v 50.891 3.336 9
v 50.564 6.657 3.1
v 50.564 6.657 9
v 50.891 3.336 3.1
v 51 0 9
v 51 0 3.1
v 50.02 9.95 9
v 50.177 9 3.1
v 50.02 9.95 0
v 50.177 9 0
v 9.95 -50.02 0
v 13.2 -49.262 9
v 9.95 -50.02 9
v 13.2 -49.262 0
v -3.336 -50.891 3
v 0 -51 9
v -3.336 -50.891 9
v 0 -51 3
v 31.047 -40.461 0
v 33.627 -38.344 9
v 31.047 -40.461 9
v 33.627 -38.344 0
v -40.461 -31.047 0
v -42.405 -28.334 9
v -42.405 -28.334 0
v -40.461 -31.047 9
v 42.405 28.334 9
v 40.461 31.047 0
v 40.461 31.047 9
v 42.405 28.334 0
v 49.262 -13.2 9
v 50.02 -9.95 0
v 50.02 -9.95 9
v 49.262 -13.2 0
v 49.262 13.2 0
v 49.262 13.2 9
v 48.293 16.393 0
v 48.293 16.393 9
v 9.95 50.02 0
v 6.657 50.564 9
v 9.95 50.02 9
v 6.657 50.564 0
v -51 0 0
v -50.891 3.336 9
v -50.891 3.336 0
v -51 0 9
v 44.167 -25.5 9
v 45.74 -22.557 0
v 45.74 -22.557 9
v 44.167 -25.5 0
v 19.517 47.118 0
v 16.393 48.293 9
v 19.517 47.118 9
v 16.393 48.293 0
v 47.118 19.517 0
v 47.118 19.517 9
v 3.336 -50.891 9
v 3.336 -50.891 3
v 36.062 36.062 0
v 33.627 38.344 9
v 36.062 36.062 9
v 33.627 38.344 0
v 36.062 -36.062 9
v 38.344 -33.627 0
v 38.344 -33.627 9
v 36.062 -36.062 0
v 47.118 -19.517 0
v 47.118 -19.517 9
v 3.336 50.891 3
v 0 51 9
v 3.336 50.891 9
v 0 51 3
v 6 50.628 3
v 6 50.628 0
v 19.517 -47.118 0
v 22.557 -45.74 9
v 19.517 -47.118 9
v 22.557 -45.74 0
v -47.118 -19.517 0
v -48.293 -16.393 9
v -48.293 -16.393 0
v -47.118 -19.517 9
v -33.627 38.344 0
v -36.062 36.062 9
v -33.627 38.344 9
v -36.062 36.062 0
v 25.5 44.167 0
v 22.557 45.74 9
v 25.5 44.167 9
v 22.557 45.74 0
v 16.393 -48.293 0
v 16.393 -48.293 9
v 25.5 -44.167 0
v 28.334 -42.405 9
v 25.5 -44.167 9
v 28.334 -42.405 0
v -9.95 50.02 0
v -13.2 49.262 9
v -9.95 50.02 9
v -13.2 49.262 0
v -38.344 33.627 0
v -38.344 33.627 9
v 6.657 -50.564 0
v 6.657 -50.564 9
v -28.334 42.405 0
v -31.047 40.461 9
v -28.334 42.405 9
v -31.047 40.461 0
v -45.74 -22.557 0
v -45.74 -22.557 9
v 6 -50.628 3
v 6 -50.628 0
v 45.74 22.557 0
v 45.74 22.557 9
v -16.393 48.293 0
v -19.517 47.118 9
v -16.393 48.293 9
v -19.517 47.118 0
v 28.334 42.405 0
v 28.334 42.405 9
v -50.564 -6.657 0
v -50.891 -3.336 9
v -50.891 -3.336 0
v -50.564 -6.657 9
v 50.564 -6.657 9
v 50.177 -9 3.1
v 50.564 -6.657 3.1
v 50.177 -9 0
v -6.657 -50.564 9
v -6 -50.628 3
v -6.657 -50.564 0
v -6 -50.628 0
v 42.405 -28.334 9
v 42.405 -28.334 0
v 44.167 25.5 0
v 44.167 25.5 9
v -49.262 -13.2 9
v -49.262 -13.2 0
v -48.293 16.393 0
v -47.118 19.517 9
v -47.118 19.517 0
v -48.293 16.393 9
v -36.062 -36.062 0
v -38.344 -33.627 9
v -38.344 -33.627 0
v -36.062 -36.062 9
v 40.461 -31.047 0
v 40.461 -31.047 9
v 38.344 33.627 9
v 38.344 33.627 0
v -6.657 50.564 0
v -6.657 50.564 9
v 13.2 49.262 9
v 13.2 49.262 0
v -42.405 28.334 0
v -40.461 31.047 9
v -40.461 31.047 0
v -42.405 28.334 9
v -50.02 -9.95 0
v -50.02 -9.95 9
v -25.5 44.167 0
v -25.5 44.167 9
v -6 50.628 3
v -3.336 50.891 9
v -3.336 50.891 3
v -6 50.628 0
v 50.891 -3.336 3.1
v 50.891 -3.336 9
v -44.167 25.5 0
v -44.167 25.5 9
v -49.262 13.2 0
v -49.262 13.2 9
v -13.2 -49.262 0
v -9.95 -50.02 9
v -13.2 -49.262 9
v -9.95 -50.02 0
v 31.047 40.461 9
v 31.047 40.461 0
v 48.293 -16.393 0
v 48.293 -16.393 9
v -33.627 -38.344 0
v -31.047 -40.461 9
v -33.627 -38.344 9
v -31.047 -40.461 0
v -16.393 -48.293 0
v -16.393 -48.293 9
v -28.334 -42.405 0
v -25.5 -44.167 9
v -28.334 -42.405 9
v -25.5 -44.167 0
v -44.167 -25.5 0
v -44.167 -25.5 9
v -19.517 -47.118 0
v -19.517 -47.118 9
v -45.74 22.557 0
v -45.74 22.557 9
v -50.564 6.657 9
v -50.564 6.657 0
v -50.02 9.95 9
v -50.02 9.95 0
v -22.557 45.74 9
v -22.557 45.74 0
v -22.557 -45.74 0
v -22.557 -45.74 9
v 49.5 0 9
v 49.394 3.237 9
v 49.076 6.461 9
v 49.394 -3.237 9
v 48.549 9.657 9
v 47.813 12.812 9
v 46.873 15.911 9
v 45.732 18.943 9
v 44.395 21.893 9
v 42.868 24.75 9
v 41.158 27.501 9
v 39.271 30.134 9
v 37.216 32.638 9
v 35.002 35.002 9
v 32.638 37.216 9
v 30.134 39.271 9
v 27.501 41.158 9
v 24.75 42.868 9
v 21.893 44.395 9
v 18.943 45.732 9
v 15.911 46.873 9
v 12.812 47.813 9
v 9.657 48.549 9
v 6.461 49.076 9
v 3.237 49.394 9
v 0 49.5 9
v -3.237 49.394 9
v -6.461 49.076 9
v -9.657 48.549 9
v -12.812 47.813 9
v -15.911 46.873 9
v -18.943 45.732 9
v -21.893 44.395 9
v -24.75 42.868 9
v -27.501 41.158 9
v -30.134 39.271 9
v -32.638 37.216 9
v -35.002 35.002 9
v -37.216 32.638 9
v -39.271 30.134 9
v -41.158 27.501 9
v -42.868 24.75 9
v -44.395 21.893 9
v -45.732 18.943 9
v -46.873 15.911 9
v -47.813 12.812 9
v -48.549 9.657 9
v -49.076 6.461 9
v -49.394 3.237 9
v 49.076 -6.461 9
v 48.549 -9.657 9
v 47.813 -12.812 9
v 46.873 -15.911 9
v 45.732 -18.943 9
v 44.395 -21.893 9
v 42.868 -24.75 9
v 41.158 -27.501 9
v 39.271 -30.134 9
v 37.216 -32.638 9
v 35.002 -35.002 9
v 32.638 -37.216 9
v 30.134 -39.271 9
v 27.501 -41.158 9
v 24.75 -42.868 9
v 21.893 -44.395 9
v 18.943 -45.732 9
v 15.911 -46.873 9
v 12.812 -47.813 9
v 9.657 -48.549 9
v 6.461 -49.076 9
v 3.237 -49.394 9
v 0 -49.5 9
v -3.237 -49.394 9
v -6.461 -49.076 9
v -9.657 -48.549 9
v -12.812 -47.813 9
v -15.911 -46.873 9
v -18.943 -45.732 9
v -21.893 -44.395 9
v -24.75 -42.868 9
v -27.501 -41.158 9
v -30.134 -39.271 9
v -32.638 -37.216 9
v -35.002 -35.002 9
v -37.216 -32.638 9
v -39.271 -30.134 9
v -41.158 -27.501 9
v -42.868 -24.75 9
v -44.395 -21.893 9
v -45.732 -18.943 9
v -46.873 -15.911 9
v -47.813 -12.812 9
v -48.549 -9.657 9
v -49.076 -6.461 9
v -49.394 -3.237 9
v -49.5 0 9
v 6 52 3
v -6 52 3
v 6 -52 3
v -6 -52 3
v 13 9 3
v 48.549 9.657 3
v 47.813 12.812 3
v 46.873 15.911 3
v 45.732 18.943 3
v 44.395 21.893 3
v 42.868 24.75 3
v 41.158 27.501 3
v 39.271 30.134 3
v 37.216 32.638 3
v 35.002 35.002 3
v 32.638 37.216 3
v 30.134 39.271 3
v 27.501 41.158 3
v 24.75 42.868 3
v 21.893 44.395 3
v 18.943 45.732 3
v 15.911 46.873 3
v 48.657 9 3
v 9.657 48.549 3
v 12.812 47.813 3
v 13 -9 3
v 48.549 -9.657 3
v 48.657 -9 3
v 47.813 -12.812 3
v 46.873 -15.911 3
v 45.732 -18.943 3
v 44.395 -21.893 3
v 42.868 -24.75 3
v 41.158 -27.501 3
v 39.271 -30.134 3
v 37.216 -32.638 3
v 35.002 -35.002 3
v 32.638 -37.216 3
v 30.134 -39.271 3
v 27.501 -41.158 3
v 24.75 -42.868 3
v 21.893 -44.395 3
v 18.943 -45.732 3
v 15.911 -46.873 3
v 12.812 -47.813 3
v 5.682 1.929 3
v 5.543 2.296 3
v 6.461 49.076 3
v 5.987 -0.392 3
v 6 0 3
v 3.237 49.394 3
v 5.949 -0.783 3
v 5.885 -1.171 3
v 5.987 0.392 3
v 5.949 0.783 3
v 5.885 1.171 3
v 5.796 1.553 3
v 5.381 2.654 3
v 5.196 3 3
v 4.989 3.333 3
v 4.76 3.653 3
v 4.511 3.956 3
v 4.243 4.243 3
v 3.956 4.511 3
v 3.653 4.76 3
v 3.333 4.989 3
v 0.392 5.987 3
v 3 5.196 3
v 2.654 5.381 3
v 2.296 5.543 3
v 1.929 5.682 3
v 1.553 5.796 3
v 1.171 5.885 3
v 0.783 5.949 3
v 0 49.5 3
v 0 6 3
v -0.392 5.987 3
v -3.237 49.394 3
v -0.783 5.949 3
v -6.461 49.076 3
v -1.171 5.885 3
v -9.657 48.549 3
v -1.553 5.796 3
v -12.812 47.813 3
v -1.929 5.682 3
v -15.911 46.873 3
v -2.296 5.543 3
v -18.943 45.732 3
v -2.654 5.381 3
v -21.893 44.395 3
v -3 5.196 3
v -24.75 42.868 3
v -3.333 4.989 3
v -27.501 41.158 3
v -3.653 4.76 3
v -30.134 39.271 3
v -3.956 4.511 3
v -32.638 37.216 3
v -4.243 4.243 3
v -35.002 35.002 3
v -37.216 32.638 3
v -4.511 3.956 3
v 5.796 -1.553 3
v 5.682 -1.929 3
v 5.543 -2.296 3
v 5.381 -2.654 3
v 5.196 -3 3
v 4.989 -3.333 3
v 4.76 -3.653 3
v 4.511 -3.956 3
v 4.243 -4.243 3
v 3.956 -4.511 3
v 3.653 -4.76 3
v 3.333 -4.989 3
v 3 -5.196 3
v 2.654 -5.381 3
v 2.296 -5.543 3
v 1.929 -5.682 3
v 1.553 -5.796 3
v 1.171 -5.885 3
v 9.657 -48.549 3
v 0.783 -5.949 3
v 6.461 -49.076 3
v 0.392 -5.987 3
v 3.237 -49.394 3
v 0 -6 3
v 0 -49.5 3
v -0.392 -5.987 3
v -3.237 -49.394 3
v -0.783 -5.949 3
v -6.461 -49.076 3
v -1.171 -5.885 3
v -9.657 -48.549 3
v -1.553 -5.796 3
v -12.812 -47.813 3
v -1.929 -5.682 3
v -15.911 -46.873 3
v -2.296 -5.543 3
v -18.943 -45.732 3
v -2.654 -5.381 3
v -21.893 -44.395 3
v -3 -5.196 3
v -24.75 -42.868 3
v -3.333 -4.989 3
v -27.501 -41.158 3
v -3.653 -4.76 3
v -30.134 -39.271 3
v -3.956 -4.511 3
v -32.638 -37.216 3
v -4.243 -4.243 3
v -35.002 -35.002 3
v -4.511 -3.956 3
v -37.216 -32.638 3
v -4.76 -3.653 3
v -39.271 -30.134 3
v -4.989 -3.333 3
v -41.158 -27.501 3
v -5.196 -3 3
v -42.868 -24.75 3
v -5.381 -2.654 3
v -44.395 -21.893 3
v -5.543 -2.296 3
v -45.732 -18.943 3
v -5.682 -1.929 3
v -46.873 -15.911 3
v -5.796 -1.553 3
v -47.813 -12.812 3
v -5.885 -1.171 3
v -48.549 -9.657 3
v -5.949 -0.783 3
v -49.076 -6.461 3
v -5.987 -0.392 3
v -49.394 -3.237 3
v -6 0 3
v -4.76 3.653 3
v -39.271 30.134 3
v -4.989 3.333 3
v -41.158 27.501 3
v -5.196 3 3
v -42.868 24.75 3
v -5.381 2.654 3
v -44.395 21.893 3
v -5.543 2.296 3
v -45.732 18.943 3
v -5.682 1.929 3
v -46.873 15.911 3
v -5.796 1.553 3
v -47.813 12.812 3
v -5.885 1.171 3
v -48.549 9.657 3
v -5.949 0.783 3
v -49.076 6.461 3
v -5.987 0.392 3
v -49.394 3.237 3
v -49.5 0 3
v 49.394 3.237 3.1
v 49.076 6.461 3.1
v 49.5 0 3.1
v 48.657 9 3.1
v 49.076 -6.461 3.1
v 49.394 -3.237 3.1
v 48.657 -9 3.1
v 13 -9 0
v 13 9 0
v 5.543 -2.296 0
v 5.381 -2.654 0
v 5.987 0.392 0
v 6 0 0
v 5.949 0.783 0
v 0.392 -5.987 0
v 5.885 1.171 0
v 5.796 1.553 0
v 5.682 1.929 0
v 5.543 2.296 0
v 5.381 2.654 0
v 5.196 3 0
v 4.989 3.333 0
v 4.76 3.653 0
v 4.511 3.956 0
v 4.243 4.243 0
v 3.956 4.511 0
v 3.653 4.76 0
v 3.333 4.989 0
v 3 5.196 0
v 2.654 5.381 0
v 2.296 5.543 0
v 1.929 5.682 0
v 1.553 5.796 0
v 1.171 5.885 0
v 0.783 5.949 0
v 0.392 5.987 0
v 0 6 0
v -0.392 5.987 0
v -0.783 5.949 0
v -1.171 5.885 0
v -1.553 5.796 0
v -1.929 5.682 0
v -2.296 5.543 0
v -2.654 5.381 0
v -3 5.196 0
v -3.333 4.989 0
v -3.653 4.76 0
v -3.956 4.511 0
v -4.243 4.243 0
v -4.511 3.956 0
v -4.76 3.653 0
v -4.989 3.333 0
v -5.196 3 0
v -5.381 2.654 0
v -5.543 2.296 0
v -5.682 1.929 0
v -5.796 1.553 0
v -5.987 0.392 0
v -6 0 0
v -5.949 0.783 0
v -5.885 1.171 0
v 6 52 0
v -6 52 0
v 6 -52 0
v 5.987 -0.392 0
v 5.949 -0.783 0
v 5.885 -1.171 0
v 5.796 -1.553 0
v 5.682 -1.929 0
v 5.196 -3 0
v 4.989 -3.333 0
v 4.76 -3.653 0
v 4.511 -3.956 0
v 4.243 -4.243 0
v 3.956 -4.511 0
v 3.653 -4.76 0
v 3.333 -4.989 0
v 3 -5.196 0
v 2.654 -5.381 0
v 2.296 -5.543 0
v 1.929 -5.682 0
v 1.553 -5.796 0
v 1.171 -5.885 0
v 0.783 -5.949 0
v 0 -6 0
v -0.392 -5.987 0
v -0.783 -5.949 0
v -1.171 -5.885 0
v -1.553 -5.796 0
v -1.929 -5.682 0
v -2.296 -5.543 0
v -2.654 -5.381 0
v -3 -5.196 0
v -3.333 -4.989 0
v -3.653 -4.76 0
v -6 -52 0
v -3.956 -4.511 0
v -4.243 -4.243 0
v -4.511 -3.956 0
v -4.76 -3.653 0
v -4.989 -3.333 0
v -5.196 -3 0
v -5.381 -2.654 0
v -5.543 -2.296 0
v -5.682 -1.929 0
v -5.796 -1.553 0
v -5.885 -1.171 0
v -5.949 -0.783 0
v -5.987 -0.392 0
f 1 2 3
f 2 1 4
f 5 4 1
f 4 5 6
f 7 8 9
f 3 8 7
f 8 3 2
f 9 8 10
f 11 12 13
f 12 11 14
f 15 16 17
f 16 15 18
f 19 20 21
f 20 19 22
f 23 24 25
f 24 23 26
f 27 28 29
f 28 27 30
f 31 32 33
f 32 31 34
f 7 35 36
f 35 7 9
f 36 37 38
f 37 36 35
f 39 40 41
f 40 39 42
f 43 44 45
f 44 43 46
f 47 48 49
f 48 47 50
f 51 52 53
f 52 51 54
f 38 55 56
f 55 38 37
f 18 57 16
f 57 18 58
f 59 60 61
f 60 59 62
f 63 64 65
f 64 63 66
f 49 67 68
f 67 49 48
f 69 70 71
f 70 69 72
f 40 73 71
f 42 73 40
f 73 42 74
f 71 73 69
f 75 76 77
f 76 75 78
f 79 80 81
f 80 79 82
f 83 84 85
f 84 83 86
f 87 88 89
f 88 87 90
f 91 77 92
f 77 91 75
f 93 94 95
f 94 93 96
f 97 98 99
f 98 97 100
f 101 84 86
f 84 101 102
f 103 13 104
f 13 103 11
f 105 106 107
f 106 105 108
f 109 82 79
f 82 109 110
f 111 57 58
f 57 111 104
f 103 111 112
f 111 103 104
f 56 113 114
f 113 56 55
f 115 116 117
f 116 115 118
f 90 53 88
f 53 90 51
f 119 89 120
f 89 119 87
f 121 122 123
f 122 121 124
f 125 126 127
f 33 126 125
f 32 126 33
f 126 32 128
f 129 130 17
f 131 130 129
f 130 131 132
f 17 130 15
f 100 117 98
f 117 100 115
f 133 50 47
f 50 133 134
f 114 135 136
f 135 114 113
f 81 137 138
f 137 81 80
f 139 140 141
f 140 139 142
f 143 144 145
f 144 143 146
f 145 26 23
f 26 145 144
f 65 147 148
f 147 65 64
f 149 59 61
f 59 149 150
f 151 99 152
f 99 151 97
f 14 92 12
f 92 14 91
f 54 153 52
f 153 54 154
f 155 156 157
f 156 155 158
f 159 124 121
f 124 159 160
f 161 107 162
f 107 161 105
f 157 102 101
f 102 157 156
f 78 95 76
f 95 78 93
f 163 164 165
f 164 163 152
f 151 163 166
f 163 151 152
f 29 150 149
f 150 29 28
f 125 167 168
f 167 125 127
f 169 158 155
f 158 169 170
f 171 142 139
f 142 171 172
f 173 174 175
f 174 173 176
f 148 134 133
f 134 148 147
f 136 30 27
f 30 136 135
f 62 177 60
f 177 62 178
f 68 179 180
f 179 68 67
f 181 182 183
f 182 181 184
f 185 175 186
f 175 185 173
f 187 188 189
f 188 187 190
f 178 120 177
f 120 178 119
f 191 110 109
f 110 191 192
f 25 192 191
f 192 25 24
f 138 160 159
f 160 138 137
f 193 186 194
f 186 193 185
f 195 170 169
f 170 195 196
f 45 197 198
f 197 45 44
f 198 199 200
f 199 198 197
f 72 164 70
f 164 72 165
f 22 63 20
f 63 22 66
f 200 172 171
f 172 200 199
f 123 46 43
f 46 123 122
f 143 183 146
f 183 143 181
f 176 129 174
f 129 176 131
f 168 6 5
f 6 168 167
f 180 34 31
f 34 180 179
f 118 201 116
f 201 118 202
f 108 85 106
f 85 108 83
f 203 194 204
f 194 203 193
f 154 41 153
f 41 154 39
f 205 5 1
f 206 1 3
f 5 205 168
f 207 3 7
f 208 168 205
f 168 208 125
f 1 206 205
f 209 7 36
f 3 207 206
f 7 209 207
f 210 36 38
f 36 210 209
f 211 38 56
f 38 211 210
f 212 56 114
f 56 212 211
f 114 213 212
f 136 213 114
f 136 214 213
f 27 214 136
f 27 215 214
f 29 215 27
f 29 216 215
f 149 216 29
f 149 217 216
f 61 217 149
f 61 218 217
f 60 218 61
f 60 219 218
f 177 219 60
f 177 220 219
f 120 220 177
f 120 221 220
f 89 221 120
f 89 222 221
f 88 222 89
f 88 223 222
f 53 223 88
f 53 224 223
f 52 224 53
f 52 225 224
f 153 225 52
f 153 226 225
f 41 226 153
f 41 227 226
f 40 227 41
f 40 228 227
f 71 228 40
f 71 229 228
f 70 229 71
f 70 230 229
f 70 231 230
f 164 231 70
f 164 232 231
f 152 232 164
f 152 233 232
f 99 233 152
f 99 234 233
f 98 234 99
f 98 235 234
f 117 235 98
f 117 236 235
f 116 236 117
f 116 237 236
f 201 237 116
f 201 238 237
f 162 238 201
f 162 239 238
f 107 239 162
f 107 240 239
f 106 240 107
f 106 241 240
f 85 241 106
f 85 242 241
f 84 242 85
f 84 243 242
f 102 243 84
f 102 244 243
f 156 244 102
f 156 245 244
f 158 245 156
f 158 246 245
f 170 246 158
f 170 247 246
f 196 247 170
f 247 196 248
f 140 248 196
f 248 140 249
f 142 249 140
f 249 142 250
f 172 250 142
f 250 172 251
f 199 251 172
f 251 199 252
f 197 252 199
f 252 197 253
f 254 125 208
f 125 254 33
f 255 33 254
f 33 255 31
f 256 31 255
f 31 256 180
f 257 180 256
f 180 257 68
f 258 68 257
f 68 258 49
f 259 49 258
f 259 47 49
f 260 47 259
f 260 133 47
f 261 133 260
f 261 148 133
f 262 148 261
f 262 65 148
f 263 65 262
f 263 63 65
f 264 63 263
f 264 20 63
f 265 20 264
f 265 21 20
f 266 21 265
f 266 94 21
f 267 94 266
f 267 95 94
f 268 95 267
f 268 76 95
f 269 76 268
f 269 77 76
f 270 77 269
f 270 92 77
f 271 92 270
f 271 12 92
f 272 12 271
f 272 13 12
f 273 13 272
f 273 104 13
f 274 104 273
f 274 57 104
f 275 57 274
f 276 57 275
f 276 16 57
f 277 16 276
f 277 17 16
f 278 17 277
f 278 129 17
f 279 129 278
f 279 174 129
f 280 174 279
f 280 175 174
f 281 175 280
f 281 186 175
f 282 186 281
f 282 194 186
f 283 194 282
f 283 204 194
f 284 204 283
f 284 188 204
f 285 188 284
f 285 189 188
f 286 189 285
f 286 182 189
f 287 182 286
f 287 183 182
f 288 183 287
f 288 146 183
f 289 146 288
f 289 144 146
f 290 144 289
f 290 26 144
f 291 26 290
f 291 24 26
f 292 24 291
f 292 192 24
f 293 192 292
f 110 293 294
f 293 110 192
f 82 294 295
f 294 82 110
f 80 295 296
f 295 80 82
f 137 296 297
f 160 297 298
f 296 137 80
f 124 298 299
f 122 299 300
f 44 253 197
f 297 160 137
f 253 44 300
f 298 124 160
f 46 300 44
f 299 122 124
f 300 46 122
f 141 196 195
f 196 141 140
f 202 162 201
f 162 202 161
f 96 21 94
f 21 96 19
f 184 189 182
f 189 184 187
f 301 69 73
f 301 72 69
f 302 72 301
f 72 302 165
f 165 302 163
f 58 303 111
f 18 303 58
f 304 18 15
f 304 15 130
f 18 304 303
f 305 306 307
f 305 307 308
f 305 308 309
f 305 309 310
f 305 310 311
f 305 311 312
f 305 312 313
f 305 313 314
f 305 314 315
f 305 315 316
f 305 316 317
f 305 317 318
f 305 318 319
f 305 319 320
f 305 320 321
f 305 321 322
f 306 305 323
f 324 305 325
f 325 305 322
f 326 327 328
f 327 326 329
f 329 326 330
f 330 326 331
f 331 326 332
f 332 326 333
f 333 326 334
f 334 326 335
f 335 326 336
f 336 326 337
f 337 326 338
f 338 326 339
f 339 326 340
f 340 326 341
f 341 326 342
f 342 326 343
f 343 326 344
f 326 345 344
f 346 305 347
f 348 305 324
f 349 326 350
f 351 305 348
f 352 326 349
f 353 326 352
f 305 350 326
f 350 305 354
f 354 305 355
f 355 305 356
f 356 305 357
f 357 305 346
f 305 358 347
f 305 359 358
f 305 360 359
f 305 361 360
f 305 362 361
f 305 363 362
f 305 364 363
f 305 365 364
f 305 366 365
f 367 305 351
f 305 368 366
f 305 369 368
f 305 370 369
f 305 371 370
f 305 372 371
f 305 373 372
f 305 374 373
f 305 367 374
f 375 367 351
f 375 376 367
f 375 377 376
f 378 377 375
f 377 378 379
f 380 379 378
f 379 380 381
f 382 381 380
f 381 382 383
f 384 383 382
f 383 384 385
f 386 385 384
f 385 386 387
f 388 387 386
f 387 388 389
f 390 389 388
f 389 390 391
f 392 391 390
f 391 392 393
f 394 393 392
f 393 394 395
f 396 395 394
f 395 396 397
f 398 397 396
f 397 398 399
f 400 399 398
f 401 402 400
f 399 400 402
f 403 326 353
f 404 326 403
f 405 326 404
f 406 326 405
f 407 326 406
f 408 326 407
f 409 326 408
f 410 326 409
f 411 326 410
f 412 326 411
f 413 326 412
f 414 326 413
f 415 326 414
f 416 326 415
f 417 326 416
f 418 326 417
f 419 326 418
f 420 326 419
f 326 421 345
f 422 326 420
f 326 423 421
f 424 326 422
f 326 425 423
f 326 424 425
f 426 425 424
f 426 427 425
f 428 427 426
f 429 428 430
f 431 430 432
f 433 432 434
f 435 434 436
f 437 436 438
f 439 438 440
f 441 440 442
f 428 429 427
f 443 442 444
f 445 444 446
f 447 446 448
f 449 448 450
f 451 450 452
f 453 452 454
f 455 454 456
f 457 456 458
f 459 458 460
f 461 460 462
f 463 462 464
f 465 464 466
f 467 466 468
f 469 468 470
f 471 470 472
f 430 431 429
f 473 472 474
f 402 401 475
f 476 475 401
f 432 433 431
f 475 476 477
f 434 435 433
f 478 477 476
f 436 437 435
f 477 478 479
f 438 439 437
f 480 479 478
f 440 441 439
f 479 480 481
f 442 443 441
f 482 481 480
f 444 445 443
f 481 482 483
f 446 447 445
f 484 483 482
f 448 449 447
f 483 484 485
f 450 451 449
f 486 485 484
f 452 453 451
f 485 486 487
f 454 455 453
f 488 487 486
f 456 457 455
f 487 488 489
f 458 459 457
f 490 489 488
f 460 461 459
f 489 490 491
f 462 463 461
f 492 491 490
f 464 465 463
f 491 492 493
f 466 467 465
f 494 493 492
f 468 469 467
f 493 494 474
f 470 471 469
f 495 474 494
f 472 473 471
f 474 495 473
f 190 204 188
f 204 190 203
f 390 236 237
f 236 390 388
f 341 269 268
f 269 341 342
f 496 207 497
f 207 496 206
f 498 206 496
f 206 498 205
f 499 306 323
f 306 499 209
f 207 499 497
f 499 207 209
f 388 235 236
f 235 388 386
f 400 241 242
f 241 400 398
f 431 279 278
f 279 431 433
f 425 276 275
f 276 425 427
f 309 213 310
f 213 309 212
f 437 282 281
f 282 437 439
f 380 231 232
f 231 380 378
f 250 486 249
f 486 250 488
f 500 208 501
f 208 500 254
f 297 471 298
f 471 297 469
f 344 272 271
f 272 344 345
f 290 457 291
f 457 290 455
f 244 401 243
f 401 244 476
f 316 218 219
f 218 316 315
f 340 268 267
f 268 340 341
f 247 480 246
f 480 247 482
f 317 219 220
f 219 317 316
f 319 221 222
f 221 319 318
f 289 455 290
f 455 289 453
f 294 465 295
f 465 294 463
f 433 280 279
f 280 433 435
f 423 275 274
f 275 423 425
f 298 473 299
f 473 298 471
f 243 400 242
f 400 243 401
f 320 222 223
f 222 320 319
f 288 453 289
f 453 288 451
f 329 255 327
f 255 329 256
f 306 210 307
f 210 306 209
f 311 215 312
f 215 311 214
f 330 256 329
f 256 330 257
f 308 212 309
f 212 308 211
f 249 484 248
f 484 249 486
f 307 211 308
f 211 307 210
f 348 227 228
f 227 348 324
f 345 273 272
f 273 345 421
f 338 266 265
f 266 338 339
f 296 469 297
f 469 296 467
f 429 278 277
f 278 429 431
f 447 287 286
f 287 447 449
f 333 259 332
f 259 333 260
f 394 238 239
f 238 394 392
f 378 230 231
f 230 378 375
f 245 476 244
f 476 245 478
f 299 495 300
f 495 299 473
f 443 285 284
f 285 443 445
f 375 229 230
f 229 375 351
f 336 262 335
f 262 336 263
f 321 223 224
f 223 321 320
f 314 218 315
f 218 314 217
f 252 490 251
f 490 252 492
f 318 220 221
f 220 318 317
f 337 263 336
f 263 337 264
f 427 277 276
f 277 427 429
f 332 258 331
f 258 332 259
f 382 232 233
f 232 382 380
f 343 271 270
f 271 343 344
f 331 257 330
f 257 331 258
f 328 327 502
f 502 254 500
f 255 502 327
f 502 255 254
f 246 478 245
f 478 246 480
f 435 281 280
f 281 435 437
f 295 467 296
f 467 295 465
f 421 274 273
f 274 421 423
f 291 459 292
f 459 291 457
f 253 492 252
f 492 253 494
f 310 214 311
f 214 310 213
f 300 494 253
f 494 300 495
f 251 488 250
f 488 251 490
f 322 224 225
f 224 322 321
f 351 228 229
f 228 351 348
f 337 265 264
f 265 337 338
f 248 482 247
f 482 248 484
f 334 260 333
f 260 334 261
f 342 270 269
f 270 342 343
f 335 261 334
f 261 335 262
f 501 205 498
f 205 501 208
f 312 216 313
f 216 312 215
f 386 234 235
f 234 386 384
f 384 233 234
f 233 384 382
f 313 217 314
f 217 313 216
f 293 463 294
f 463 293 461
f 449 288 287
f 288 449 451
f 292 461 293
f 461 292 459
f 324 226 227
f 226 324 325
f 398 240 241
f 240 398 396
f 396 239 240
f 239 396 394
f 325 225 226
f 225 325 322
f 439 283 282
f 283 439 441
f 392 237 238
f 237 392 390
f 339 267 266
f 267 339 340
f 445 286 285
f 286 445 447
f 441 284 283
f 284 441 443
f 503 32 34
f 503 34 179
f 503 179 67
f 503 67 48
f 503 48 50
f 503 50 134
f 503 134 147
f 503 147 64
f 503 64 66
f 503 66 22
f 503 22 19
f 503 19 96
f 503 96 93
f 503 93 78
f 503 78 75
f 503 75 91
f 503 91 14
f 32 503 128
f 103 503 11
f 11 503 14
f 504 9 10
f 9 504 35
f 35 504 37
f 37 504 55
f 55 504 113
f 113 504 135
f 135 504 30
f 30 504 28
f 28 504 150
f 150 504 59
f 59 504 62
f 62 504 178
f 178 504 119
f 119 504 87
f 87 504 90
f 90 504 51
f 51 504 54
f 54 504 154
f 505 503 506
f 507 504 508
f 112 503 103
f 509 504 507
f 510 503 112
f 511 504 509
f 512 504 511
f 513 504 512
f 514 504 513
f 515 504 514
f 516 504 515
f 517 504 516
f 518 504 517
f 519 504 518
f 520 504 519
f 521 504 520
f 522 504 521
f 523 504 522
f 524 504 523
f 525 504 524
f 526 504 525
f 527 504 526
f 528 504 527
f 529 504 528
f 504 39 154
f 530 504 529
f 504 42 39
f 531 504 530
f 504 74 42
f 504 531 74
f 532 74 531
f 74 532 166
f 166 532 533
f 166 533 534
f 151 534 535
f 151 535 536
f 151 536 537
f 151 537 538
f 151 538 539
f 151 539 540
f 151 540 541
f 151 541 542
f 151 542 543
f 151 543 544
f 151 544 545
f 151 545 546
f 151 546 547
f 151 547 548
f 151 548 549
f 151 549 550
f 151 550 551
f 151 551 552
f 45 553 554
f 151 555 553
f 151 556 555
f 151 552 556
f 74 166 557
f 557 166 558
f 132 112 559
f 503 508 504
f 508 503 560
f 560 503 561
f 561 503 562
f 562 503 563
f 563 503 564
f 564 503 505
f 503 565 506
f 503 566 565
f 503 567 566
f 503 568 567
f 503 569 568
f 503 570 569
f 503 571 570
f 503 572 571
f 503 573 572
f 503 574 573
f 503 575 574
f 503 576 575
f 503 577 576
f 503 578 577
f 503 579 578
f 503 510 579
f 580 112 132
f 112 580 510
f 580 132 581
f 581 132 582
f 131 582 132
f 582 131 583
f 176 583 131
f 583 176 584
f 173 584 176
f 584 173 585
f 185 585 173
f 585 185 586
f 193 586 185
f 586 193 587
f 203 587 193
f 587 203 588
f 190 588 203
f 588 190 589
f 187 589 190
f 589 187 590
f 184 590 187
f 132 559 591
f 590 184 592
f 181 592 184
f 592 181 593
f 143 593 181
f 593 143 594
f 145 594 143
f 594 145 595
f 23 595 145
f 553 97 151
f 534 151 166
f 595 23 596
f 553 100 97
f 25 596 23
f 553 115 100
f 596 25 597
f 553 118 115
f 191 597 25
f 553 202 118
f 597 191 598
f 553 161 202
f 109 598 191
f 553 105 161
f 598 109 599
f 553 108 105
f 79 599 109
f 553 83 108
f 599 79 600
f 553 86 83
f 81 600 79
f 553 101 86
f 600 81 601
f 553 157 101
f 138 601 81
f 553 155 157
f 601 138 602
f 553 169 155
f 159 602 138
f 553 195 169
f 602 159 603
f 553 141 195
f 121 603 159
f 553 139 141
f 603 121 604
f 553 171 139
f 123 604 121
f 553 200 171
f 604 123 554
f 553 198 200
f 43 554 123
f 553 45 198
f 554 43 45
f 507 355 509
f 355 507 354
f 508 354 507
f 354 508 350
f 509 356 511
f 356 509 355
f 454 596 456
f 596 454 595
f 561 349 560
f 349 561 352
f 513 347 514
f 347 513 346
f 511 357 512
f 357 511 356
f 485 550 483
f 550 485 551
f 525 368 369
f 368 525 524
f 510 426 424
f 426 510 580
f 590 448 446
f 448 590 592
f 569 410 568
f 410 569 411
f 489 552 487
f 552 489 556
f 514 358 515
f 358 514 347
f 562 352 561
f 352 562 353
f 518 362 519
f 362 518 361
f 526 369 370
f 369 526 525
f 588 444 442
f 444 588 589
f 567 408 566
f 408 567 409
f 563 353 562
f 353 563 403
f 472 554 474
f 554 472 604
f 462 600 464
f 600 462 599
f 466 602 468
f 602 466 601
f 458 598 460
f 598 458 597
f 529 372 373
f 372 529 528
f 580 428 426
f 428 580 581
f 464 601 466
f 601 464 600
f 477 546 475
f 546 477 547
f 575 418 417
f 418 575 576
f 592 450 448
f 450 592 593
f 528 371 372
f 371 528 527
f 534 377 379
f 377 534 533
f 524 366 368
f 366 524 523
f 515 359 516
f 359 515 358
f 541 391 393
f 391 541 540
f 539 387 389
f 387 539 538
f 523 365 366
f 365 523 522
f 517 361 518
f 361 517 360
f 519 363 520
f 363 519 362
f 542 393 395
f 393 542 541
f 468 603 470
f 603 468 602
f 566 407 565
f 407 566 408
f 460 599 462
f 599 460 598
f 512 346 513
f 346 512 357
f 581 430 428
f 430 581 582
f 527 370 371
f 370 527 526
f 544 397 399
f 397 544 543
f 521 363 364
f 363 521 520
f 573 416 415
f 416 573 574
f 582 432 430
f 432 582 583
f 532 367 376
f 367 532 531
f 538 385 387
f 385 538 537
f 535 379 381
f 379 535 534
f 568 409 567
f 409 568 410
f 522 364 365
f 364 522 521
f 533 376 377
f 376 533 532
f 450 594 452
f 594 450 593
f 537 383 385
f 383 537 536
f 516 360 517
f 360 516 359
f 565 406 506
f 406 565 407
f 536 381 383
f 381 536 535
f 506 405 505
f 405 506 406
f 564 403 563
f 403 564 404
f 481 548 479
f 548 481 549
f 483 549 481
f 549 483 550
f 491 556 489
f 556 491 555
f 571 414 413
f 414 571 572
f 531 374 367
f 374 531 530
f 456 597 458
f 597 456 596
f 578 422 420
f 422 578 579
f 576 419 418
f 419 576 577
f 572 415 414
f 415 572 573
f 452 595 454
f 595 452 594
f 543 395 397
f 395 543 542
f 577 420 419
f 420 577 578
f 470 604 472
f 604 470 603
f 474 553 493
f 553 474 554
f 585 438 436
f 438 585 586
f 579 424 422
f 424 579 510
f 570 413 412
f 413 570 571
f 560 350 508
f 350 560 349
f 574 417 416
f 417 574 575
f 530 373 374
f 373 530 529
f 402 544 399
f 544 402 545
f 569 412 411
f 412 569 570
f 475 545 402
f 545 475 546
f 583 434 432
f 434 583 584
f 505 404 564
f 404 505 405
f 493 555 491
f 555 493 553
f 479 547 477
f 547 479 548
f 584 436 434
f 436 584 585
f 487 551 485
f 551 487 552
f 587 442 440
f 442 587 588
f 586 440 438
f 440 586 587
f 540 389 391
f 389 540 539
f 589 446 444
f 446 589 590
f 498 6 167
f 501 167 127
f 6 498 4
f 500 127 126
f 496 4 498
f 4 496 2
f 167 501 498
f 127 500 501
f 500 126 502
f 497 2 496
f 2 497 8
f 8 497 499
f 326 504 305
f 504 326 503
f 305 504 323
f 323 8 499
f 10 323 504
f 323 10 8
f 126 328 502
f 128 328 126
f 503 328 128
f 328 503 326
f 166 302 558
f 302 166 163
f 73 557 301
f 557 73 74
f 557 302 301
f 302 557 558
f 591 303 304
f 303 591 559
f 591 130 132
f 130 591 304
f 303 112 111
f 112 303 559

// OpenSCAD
// file: parameters.scad
// Shared parametric dimensions — Automated Pill Dispenser (full prototype print set)
// include <parameters.scad>;

// ----- Global print / fit -----
layer_h         = 0.2;
nozzle_d        = 0.4;
wall            = 2.4;
clearance_slip  = 0.30;
clearance_press = 0.08;

// ----- Arduino Nano 33 BLE -----
nano_l = 45.0;
nano_w = 18.0;
nano_h = 7.0;
nano_usb_w = 9.0;
nano_usb_h = 4.0;

// ----- MG90S servo -----
servo_l = 22.8;
servo_w = 12.2;
servo_h = 28.5;
servo_tab_l = 32.2;
servo_horn_od = 7.0;
servo_shaft_clear_d = 9.0;

// ----- LiPo + TP4056 -----
lipo_l = 30.0;
lipo_w = 20.0;
lipo_h = 6.0;
tp4056_l = 26.0;
tp4056_w = 17.0;
tp4056_h = 5.0;
tp4056_usbc_w = 9.5;
tp4056_usbc_h = 4.0;

// ----- Part A enclosure -----
base_outer_xy = 120.0;
base_outer_h  = 42.0;
chute_angle   = 45.0;
chute_w       = 22.0;

// ----- Part B plate -----
base_plate_dia = 100.0;
base_plate_h   = 5.0;
drop_w         = 20.0;
drop_d         = 15.0;
drop_r_offset  = 32.0;

// ----- Part C carousel -----
car_dia     = 98.0;
car_h       = 25.0;
car_pockets = 8;
car_wall    = 2.0;
car_hub_od  = 18.0;
car_hub_id  = servo_horn_od - clearance_press;

// ----- Part D latch gate -----
gate_travel    = 22.0;
gate_thickness = 2.4;
gate_w         = drop_w + 6.0;
gate_l         = drop_d + gate_travel + 8.0;

// ----- Part E carousel lid -----
lid_dia        = car_dia + 4.0;
lid_h          = 3.0;
lid_lip_h      = 6.0;
lid_clearance  = 0.5;

// ----- Part F catch tray (vision landing zone) -----
tray_l = 90.0;
tray_w = 70.0;
tray_h = 12.0;
tray_floor = 2.0;
tray_well_margin = 6.0;

// ----- Part G chute spout -----
spout_len = 35.0;
spout_flare = 28.0;

// ----- Part H latch servo bracket -----
bracket_wall = 2.4;

// ----- Part I cable clips -----
clip_w = 10.0;
clip_span = 6.0;

// ----- Part J feet -----
foot_od = 14.0;
foot_h  = 4.0;

// ----- Part K pill pocket insert (optional reducer) -----
insert_h = car_h - 2.0;
insert_outer_clear = 0.35;
// main file
// Part E — Carousel lid / top cover
// Keeps pills in pockets during rotation; finger shield.
// Export → stl/part_e_carousel_lid.stl
// Print flat on top face (lip up). No supports.

include <parameters.scad>;

$fn = 96;

module part_e_carousel_lid() {
    difference() {
        union() {
            // Top disc
            cylinder(h = lid_h, d = lid_dia, center = false);
            // Descending lip that nests over carousel OD
            translate([0, 0, lid_h])
                difference() {
                    cylinder(h = lid_lip_h, d = lid_dia, center = false);
                    translate([0, 0, -0.1])
                        cylinder(h = lid_lip_h + 0.2, d = car_dia + lid_clearance * 2, center = false);
                }
        }
        // Center viewing / horn-screw access hole
        translate([0, 0, -0.1])
            cylinder(h = lid_h + lid_lip_h + 0.2, d = 12, center = false);
        // Optional refill window (pie cut) — leave one sector openable by rotating lid mark
        rotate([0, 0, 0])
            translate([lid_dia / 4 + 8, 0, lid_h / 2])
                cube([lid_dia / 2 - 10, 18, lid_h + 0.2], center = true);
    }
    // Finger grip tabs
    for (a = [90, 270])
        rotate([0, 0, a])
            translate([lid_dia / 2 - 1, 0, lid_h / 2])
                cube([4, 12, lid_h], center = true);
}

part_e_carousel_lid();
